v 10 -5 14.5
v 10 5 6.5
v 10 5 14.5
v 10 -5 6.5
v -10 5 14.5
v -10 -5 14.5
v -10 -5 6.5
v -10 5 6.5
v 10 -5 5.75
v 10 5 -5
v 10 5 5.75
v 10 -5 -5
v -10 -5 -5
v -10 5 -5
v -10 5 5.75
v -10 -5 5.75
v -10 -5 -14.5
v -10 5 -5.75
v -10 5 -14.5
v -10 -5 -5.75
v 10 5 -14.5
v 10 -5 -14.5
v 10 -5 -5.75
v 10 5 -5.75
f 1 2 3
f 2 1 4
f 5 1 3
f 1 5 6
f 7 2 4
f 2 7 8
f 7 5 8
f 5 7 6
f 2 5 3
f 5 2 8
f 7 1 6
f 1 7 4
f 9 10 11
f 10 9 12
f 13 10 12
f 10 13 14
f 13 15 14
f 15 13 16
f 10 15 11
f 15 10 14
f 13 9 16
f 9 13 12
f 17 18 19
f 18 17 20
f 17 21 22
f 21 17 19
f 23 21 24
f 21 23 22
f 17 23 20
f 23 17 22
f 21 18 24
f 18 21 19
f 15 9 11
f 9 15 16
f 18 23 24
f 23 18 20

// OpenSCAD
// Parameters for dimensions
central_block_width = 20;
central_block_height = 10;
central_block_depth = 10;
v_notch_depth = 7; // Increased depth for a more pronounced V-shaped notch
v_notch_width = 10;

side_block_width = 20;
side_block_height = 8;
side_block_depth = 10;
side_v_notch_depth = 6; // Increased depth for side block V-shaped notch
side_v_notch_width = 10;

spacer_block_width = 20;
spacer_block_height = 1.5; // Reduced thickness for spacer block
spacer_block_depth = 10;

// Function to create a block with a V-shaped notch
module v_notched_block(width, height, depth, notch_width, notch_depth) {
    difference() {
        cube([width, depth, height], center = true);
        translate([-notch_width / 2, -depth / 2, -height / 2])
            polyhedron(
                points = [
                    [0, 0, 0],
                    [notch_width, 0, 0],
                    [notch_width / 2, 0, notch_depth]
                ],
                faces = [[0, 1, 2]]
            );
    }
}

// Central block
module central_block() {
    v_notched_block(
        central_block_width,
        central_block_height,
        central_block_depth,
        v_notch_width,
        v_notch_depth
    );
}

// Side block
module side_block() {
    v_notched_block(
        side_block_width,
        side_block_height,
        side_block_depth,
        side_v_notch_width,
        side_v_notch_depth
    );
}

// Spacer block
module spacer_block() {
    cube([spacer_block_width, spacer_block_depth, spacer_block_height], center = true);
}

// Assembly
module flexible_coupling() {
    translate([0, 0, side_block_height / 2 + spacer_block_height + central_block_height / 2])
        side_block();
    translate([0, 0, central_block_height / 2])
        spacer_block();
    translate([0, 0, 0])
        central_block();
    translate([0, 0, -central_block_height / 2 - spacer_block_height])
        spacer_block();
    translate([0, 0, -central_block_height / 2 - spacer_block_height - side_block_height / 2])
        rotate([0, 0, 180])
        side_block();
}

// Render the model
flexible_coupling();
